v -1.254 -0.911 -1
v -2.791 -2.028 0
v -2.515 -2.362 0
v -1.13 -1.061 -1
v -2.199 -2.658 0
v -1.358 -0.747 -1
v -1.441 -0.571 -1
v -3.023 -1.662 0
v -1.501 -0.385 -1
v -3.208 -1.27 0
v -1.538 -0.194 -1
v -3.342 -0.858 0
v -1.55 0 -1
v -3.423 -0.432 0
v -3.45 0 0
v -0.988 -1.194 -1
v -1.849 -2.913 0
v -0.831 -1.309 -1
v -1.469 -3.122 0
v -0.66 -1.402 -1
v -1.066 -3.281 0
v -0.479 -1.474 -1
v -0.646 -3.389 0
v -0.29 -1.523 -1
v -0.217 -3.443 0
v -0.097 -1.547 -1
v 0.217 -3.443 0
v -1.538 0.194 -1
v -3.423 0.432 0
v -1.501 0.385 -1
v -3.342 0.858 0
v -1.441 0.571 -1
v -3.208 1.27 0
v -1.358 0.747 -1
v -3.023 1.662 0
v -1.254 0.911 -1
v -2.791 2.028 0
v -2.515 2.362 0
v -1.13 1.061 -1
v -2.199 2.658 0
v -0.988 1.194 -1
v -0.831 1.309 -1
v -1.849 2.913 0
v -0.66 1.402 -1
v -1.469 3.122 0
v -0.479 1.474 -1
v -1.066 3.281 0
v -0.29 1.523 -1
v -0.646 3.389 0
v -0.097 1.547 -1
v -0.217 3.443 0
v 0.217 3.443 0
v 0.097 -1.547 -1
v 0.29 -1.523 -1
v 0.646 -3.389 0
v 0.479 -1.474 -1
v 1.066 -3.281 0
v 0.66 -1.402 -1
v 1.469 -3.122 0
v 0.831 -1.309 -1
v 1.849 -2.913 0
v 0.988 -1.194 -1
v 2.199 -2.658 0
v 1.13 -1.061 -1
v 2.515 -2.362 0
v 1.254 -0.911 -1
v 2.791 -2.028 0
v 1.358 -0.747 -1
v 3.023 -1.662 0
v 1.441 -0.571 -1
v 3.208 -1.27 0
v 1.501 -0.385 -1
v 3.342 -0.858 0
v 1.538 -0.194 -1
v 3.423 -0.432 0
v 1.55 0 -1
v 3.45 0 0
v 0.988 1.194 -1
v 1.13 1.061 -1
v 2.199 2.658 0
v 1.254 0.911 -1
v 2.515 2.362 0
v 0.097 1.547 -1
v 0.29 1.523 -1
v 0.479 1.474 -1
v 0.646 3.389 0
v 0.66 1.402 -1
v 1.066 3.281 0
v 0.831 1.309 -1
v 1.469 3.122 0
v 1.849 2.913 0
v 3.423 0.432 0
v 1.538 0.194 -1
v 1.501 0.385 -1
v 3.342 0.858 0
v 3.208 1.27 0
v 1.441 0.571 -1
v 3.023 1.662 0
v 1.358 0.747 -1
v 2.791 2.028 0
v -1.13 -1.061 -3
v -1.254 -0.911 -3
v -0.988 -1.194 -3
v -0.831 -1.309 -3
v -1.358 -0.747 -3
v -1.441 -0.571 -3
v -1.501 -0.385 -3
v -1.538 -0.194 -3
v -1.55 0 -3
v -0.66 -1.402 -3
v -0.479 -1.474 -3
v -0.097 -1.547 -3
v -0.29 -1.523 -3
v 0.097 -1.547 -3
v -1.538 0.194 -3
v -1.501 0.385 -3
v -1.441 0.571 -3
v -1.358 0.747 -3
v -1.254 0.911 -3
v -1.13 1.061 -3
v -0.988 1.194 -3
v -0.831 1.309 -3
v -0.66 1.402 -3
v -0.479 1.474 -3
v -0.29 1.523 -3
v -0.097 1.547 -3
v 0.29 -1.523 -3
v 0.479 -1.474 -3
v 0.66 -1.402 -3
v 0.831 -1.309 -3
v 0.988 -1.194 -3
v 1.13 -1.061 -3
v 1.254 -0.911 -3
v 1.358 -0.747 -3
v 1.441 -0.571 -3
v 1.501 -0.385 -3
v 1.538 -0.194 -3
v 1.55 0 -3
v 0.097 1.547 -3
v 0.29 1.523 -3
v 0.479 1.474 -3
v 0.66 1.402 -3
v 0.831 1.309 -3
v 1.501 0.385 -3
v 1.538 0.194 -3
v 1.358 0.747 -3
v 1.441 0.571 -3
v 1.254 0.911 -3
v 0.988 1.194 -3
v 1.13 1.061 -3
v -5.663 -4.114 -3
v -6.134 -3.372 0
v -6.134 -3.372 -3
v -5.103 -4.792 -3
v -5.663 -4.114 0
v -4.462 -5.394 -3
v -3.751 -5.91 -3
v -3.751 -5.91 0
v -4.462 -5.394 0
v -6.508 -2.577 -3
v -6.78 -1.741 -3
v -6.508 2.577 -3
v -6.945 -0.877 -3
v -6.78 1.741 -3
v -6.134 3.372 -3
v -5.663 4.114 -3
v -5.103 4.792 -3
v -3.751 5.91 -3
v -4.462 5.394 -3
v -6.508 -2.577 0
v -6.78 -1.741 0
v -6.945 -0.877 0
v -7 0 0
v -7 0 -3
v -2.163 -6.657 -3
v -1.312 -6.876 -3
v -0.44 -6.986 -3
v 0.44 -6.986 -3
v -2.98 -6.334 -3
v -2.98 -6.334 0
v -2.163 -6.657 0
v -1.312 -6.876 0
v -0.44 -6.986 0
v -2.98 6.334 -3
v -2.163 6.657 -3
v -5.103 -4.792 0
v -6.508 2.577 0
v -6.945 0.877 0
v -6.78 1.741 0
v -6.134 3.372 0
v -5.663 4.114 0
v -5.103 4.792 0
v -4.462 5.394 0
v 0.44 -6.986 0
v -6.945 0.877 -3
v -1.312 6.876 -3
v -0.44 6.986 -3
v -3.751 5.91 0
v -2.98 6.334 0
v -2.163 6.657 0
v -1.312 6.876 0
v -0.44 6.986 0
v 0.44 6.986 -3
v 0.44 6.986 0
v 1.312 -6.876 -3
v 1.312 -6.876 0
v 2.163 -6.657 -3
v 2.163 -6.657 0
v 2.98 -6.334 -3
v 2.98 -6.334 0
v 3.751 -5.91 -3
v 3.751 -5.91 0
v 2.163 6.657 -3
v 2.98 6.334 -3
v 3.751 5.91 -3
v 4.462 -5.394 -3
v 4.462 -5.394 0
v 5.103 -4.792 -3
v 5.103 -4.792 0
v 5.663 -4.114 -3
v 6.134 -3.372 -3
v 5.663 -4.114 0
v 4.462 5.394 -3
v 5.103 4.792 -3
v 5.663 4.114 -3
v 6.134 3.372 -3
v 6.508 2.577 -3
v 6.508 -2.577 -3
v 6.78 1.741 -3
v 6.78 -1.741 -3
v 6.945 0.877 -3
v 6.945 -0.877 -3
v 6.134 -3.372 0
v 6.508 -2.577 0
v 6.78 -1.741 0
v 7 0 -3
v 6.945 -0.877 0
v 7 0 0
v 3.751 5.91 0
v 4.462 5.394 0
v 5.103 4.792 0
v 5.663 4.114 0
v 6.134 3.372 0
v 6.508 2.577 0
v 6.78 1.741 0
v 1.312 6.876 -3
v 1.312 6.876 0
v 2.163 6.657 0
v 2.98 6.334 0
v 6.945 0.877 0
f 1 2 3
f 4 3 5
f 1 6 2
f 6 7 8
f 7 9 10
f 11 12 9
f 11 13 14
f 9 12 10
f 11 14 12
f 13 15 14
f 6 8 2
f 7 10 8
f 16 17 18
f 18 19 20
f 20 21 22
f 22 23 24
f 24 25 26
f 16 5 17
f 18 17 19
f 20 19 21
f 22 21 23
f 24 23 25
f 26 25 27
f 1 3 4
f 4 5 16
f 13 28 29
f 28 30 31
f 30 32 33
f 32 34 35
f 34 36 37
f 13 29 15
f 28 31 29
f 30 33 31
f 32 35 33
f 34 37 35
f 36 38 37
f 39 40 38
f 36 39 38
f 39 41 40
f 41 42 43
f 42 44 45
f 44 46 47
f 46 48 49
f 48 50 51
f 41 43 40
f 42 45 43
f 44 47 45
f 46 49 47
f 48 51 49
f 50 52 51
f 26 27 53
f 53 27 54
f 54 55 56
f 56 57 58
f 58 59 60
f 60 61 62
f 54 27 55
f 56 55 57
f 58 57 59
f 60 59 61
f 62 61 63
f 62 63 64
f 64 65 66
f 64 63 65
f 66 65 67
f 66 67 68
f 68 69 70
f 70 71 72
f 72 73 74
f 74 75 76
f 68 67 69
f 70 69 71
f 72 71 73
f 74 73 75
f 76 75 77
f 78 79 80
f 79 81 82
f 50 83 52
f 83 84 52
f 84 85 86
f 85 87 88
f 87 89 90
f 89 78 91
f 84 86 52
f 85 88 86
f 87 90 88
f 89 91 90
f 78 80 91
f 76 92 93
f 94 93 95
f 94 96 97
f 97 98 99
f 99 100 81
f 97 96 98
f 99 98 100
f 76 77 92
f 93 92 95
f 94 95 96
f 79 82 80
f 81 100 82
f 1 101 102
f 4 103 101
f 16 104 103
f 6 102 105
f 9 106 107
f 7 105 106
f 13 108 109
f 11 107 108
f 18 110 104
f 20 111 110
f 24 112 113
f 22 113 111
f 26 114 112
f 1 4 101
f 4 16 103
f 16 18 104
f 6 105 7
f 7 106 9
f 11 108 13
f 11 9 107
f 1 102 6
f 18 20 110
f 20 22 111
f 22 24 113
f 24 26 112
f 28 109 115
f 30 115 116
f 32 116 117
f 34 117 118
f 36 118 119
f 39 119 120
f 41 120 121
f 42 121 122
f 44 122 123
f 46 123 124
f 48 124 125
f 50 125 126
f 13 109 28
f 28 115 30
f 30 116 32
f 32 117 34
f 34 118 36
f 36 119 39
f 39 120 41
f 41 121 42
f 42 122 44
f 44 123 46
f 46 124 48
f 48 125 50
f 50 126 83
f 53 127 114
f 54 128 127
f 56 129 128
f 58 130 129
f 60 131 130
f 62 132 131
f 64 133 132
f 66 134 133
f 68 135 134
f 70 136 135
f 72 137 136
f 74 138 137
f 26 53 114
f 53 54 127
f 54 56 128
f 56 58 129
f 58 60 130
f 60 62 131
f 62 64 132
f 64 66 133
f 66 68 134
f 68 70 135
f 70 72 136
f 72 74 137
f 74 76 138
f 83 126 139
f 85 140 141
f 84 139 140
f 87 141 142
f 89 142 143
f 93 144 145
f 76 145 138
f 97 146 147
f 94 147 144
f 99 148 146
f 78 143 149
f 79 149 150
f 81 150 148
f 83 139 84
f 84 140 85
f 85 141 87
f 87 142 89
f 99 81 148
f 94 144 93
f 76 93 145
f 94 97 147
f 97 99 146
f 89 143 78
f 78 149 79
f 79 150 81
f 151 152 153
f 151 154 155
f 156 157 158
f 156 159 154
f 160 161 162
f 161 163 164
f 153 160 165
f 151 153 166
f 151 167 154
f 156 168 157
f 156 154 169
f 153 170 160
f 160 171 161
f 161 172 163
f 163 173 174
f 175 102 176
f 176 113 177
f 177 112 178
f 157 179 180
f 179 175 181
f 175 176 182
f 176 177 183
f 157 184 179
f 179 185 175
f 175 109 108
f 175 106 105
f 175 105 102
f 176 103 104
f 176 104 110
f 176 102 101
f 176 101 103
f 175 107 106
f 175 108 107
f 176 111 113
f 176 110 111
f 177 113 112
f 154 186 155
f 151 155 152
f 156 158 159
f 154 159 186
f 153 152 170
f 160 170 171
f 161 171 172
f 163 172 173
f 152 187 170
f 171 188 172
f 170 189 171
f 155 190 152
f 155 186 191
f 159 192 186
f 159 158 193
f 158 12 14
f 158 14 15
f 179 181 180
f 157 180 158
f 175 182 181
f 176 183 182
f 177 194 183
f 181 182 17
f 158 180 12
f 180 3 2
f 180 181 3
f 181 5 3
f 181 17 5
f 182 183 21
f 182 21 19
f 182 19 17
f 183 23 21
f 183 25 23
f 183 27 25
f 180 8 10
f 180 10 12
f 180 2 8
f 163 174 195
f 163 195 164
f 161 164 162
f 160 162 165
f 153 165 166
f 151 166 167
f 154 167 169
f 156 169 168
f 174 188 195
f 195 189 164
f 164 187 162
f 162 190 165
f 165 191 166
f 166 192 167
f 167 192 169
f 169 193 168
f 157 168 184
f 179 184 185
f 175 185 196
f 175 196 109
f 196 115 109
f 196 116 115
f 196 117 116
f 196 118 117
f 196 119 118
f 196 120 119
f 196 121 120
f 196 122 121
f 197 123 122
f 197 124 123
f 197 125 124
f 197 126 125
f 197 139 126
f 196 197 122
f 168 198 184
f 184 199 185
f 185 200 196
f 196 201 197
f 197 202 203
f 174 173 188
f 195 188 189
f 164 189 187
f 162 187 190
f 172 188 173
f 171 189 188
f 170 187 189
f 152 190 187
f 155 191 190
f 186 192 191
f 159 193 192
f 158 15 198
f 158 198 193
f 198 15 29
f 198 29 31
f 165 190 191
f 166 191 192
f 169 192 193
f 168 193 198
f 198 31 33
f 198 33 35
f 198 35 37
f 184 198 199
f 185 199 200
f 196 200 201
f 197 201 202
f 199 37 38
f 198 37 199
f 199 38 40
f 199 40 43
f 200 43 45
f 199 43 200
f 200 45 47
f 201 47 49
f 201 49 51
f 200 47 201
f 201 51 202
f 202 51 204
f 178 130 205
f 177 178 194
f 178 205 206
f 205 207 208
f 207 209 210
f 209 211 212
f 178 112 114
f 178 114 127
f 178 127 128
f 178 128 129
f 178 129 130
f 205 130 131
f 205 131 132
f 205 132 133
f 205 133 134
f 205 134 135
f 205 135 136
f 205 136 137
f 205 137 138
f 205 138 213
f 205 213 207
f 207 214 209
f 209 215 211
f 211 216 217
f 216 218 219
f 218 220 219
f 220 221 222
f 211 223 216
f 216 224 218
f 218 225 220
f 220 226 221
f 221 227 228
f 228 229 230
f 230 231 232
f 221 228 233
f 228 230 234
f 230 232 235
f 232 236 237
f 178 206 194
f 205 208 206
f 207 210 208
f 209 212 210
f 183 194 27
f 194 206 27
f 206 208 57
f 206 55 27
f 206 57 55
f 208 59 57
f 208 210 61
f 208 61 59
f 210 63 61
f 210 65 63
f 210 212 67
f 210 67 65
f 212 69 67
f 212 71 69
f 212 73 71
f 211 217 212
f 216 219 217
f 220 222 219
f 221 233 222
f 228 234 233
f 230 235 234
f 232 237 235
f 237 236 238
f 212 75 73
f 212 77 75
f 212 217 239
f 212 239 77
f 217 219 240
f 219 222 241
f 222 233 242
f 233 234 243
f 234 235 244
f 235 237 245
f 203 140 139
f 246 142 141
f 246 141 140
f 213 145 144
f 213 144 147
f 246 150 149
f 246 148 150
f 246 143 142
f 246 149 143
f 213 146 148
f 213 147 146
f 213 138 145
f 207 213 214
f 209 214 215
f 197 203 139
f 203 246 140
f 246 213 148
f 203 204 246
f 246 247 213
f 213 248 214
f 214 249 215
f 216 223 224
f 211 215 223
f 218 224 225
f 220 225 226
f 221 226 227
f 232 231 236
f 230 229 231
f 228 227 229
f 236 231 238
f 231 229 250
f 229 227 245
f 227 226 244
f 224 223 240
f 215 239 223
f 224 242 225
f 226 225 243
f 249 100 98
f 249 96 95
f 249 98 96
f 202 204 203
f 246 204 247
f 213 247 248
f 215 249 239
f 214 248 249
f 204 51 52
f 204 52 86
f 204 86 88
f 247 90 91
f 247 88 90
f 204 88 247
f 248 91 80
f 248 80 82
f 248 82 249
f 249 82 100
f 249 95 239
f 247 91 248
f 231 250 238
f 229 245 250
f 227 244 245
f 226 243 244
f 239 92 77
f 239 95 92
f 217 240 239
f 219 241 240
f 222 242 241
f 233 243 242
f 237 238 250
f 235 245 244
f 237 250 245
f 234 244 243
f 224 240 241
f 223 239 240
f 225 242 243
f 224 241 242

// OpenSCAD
$fn = 50;

difference() {
	union() {
		translate(v = [0, 0, -3.0]) {
			cylinder(h = 3, r = 7.0);
		}
	}
	union() {
		translate(v = [0, 0, 0]) {
			rotate(a = [0, 0, 0]) {
				difference() {
					union() {
						translate(v = [0, 0, -6.0]) {
							cylinder(h = 6, r = 1.25);
						}
						translate(v = [0, 0, -1.0]) {
							cylinder(h = 1.0, r1 = 1.55, r2 = 3.45);
						}
						translate(v = [0, 0, -6.0]) {
							cylinder(h = 6, r = 1.55);
						}
						translate(v = [0, 0, -6.0]) {
							cylinder(h = 6, r = 1.25);
						}
					}
					union();
				}
			}
		}
	}
}
